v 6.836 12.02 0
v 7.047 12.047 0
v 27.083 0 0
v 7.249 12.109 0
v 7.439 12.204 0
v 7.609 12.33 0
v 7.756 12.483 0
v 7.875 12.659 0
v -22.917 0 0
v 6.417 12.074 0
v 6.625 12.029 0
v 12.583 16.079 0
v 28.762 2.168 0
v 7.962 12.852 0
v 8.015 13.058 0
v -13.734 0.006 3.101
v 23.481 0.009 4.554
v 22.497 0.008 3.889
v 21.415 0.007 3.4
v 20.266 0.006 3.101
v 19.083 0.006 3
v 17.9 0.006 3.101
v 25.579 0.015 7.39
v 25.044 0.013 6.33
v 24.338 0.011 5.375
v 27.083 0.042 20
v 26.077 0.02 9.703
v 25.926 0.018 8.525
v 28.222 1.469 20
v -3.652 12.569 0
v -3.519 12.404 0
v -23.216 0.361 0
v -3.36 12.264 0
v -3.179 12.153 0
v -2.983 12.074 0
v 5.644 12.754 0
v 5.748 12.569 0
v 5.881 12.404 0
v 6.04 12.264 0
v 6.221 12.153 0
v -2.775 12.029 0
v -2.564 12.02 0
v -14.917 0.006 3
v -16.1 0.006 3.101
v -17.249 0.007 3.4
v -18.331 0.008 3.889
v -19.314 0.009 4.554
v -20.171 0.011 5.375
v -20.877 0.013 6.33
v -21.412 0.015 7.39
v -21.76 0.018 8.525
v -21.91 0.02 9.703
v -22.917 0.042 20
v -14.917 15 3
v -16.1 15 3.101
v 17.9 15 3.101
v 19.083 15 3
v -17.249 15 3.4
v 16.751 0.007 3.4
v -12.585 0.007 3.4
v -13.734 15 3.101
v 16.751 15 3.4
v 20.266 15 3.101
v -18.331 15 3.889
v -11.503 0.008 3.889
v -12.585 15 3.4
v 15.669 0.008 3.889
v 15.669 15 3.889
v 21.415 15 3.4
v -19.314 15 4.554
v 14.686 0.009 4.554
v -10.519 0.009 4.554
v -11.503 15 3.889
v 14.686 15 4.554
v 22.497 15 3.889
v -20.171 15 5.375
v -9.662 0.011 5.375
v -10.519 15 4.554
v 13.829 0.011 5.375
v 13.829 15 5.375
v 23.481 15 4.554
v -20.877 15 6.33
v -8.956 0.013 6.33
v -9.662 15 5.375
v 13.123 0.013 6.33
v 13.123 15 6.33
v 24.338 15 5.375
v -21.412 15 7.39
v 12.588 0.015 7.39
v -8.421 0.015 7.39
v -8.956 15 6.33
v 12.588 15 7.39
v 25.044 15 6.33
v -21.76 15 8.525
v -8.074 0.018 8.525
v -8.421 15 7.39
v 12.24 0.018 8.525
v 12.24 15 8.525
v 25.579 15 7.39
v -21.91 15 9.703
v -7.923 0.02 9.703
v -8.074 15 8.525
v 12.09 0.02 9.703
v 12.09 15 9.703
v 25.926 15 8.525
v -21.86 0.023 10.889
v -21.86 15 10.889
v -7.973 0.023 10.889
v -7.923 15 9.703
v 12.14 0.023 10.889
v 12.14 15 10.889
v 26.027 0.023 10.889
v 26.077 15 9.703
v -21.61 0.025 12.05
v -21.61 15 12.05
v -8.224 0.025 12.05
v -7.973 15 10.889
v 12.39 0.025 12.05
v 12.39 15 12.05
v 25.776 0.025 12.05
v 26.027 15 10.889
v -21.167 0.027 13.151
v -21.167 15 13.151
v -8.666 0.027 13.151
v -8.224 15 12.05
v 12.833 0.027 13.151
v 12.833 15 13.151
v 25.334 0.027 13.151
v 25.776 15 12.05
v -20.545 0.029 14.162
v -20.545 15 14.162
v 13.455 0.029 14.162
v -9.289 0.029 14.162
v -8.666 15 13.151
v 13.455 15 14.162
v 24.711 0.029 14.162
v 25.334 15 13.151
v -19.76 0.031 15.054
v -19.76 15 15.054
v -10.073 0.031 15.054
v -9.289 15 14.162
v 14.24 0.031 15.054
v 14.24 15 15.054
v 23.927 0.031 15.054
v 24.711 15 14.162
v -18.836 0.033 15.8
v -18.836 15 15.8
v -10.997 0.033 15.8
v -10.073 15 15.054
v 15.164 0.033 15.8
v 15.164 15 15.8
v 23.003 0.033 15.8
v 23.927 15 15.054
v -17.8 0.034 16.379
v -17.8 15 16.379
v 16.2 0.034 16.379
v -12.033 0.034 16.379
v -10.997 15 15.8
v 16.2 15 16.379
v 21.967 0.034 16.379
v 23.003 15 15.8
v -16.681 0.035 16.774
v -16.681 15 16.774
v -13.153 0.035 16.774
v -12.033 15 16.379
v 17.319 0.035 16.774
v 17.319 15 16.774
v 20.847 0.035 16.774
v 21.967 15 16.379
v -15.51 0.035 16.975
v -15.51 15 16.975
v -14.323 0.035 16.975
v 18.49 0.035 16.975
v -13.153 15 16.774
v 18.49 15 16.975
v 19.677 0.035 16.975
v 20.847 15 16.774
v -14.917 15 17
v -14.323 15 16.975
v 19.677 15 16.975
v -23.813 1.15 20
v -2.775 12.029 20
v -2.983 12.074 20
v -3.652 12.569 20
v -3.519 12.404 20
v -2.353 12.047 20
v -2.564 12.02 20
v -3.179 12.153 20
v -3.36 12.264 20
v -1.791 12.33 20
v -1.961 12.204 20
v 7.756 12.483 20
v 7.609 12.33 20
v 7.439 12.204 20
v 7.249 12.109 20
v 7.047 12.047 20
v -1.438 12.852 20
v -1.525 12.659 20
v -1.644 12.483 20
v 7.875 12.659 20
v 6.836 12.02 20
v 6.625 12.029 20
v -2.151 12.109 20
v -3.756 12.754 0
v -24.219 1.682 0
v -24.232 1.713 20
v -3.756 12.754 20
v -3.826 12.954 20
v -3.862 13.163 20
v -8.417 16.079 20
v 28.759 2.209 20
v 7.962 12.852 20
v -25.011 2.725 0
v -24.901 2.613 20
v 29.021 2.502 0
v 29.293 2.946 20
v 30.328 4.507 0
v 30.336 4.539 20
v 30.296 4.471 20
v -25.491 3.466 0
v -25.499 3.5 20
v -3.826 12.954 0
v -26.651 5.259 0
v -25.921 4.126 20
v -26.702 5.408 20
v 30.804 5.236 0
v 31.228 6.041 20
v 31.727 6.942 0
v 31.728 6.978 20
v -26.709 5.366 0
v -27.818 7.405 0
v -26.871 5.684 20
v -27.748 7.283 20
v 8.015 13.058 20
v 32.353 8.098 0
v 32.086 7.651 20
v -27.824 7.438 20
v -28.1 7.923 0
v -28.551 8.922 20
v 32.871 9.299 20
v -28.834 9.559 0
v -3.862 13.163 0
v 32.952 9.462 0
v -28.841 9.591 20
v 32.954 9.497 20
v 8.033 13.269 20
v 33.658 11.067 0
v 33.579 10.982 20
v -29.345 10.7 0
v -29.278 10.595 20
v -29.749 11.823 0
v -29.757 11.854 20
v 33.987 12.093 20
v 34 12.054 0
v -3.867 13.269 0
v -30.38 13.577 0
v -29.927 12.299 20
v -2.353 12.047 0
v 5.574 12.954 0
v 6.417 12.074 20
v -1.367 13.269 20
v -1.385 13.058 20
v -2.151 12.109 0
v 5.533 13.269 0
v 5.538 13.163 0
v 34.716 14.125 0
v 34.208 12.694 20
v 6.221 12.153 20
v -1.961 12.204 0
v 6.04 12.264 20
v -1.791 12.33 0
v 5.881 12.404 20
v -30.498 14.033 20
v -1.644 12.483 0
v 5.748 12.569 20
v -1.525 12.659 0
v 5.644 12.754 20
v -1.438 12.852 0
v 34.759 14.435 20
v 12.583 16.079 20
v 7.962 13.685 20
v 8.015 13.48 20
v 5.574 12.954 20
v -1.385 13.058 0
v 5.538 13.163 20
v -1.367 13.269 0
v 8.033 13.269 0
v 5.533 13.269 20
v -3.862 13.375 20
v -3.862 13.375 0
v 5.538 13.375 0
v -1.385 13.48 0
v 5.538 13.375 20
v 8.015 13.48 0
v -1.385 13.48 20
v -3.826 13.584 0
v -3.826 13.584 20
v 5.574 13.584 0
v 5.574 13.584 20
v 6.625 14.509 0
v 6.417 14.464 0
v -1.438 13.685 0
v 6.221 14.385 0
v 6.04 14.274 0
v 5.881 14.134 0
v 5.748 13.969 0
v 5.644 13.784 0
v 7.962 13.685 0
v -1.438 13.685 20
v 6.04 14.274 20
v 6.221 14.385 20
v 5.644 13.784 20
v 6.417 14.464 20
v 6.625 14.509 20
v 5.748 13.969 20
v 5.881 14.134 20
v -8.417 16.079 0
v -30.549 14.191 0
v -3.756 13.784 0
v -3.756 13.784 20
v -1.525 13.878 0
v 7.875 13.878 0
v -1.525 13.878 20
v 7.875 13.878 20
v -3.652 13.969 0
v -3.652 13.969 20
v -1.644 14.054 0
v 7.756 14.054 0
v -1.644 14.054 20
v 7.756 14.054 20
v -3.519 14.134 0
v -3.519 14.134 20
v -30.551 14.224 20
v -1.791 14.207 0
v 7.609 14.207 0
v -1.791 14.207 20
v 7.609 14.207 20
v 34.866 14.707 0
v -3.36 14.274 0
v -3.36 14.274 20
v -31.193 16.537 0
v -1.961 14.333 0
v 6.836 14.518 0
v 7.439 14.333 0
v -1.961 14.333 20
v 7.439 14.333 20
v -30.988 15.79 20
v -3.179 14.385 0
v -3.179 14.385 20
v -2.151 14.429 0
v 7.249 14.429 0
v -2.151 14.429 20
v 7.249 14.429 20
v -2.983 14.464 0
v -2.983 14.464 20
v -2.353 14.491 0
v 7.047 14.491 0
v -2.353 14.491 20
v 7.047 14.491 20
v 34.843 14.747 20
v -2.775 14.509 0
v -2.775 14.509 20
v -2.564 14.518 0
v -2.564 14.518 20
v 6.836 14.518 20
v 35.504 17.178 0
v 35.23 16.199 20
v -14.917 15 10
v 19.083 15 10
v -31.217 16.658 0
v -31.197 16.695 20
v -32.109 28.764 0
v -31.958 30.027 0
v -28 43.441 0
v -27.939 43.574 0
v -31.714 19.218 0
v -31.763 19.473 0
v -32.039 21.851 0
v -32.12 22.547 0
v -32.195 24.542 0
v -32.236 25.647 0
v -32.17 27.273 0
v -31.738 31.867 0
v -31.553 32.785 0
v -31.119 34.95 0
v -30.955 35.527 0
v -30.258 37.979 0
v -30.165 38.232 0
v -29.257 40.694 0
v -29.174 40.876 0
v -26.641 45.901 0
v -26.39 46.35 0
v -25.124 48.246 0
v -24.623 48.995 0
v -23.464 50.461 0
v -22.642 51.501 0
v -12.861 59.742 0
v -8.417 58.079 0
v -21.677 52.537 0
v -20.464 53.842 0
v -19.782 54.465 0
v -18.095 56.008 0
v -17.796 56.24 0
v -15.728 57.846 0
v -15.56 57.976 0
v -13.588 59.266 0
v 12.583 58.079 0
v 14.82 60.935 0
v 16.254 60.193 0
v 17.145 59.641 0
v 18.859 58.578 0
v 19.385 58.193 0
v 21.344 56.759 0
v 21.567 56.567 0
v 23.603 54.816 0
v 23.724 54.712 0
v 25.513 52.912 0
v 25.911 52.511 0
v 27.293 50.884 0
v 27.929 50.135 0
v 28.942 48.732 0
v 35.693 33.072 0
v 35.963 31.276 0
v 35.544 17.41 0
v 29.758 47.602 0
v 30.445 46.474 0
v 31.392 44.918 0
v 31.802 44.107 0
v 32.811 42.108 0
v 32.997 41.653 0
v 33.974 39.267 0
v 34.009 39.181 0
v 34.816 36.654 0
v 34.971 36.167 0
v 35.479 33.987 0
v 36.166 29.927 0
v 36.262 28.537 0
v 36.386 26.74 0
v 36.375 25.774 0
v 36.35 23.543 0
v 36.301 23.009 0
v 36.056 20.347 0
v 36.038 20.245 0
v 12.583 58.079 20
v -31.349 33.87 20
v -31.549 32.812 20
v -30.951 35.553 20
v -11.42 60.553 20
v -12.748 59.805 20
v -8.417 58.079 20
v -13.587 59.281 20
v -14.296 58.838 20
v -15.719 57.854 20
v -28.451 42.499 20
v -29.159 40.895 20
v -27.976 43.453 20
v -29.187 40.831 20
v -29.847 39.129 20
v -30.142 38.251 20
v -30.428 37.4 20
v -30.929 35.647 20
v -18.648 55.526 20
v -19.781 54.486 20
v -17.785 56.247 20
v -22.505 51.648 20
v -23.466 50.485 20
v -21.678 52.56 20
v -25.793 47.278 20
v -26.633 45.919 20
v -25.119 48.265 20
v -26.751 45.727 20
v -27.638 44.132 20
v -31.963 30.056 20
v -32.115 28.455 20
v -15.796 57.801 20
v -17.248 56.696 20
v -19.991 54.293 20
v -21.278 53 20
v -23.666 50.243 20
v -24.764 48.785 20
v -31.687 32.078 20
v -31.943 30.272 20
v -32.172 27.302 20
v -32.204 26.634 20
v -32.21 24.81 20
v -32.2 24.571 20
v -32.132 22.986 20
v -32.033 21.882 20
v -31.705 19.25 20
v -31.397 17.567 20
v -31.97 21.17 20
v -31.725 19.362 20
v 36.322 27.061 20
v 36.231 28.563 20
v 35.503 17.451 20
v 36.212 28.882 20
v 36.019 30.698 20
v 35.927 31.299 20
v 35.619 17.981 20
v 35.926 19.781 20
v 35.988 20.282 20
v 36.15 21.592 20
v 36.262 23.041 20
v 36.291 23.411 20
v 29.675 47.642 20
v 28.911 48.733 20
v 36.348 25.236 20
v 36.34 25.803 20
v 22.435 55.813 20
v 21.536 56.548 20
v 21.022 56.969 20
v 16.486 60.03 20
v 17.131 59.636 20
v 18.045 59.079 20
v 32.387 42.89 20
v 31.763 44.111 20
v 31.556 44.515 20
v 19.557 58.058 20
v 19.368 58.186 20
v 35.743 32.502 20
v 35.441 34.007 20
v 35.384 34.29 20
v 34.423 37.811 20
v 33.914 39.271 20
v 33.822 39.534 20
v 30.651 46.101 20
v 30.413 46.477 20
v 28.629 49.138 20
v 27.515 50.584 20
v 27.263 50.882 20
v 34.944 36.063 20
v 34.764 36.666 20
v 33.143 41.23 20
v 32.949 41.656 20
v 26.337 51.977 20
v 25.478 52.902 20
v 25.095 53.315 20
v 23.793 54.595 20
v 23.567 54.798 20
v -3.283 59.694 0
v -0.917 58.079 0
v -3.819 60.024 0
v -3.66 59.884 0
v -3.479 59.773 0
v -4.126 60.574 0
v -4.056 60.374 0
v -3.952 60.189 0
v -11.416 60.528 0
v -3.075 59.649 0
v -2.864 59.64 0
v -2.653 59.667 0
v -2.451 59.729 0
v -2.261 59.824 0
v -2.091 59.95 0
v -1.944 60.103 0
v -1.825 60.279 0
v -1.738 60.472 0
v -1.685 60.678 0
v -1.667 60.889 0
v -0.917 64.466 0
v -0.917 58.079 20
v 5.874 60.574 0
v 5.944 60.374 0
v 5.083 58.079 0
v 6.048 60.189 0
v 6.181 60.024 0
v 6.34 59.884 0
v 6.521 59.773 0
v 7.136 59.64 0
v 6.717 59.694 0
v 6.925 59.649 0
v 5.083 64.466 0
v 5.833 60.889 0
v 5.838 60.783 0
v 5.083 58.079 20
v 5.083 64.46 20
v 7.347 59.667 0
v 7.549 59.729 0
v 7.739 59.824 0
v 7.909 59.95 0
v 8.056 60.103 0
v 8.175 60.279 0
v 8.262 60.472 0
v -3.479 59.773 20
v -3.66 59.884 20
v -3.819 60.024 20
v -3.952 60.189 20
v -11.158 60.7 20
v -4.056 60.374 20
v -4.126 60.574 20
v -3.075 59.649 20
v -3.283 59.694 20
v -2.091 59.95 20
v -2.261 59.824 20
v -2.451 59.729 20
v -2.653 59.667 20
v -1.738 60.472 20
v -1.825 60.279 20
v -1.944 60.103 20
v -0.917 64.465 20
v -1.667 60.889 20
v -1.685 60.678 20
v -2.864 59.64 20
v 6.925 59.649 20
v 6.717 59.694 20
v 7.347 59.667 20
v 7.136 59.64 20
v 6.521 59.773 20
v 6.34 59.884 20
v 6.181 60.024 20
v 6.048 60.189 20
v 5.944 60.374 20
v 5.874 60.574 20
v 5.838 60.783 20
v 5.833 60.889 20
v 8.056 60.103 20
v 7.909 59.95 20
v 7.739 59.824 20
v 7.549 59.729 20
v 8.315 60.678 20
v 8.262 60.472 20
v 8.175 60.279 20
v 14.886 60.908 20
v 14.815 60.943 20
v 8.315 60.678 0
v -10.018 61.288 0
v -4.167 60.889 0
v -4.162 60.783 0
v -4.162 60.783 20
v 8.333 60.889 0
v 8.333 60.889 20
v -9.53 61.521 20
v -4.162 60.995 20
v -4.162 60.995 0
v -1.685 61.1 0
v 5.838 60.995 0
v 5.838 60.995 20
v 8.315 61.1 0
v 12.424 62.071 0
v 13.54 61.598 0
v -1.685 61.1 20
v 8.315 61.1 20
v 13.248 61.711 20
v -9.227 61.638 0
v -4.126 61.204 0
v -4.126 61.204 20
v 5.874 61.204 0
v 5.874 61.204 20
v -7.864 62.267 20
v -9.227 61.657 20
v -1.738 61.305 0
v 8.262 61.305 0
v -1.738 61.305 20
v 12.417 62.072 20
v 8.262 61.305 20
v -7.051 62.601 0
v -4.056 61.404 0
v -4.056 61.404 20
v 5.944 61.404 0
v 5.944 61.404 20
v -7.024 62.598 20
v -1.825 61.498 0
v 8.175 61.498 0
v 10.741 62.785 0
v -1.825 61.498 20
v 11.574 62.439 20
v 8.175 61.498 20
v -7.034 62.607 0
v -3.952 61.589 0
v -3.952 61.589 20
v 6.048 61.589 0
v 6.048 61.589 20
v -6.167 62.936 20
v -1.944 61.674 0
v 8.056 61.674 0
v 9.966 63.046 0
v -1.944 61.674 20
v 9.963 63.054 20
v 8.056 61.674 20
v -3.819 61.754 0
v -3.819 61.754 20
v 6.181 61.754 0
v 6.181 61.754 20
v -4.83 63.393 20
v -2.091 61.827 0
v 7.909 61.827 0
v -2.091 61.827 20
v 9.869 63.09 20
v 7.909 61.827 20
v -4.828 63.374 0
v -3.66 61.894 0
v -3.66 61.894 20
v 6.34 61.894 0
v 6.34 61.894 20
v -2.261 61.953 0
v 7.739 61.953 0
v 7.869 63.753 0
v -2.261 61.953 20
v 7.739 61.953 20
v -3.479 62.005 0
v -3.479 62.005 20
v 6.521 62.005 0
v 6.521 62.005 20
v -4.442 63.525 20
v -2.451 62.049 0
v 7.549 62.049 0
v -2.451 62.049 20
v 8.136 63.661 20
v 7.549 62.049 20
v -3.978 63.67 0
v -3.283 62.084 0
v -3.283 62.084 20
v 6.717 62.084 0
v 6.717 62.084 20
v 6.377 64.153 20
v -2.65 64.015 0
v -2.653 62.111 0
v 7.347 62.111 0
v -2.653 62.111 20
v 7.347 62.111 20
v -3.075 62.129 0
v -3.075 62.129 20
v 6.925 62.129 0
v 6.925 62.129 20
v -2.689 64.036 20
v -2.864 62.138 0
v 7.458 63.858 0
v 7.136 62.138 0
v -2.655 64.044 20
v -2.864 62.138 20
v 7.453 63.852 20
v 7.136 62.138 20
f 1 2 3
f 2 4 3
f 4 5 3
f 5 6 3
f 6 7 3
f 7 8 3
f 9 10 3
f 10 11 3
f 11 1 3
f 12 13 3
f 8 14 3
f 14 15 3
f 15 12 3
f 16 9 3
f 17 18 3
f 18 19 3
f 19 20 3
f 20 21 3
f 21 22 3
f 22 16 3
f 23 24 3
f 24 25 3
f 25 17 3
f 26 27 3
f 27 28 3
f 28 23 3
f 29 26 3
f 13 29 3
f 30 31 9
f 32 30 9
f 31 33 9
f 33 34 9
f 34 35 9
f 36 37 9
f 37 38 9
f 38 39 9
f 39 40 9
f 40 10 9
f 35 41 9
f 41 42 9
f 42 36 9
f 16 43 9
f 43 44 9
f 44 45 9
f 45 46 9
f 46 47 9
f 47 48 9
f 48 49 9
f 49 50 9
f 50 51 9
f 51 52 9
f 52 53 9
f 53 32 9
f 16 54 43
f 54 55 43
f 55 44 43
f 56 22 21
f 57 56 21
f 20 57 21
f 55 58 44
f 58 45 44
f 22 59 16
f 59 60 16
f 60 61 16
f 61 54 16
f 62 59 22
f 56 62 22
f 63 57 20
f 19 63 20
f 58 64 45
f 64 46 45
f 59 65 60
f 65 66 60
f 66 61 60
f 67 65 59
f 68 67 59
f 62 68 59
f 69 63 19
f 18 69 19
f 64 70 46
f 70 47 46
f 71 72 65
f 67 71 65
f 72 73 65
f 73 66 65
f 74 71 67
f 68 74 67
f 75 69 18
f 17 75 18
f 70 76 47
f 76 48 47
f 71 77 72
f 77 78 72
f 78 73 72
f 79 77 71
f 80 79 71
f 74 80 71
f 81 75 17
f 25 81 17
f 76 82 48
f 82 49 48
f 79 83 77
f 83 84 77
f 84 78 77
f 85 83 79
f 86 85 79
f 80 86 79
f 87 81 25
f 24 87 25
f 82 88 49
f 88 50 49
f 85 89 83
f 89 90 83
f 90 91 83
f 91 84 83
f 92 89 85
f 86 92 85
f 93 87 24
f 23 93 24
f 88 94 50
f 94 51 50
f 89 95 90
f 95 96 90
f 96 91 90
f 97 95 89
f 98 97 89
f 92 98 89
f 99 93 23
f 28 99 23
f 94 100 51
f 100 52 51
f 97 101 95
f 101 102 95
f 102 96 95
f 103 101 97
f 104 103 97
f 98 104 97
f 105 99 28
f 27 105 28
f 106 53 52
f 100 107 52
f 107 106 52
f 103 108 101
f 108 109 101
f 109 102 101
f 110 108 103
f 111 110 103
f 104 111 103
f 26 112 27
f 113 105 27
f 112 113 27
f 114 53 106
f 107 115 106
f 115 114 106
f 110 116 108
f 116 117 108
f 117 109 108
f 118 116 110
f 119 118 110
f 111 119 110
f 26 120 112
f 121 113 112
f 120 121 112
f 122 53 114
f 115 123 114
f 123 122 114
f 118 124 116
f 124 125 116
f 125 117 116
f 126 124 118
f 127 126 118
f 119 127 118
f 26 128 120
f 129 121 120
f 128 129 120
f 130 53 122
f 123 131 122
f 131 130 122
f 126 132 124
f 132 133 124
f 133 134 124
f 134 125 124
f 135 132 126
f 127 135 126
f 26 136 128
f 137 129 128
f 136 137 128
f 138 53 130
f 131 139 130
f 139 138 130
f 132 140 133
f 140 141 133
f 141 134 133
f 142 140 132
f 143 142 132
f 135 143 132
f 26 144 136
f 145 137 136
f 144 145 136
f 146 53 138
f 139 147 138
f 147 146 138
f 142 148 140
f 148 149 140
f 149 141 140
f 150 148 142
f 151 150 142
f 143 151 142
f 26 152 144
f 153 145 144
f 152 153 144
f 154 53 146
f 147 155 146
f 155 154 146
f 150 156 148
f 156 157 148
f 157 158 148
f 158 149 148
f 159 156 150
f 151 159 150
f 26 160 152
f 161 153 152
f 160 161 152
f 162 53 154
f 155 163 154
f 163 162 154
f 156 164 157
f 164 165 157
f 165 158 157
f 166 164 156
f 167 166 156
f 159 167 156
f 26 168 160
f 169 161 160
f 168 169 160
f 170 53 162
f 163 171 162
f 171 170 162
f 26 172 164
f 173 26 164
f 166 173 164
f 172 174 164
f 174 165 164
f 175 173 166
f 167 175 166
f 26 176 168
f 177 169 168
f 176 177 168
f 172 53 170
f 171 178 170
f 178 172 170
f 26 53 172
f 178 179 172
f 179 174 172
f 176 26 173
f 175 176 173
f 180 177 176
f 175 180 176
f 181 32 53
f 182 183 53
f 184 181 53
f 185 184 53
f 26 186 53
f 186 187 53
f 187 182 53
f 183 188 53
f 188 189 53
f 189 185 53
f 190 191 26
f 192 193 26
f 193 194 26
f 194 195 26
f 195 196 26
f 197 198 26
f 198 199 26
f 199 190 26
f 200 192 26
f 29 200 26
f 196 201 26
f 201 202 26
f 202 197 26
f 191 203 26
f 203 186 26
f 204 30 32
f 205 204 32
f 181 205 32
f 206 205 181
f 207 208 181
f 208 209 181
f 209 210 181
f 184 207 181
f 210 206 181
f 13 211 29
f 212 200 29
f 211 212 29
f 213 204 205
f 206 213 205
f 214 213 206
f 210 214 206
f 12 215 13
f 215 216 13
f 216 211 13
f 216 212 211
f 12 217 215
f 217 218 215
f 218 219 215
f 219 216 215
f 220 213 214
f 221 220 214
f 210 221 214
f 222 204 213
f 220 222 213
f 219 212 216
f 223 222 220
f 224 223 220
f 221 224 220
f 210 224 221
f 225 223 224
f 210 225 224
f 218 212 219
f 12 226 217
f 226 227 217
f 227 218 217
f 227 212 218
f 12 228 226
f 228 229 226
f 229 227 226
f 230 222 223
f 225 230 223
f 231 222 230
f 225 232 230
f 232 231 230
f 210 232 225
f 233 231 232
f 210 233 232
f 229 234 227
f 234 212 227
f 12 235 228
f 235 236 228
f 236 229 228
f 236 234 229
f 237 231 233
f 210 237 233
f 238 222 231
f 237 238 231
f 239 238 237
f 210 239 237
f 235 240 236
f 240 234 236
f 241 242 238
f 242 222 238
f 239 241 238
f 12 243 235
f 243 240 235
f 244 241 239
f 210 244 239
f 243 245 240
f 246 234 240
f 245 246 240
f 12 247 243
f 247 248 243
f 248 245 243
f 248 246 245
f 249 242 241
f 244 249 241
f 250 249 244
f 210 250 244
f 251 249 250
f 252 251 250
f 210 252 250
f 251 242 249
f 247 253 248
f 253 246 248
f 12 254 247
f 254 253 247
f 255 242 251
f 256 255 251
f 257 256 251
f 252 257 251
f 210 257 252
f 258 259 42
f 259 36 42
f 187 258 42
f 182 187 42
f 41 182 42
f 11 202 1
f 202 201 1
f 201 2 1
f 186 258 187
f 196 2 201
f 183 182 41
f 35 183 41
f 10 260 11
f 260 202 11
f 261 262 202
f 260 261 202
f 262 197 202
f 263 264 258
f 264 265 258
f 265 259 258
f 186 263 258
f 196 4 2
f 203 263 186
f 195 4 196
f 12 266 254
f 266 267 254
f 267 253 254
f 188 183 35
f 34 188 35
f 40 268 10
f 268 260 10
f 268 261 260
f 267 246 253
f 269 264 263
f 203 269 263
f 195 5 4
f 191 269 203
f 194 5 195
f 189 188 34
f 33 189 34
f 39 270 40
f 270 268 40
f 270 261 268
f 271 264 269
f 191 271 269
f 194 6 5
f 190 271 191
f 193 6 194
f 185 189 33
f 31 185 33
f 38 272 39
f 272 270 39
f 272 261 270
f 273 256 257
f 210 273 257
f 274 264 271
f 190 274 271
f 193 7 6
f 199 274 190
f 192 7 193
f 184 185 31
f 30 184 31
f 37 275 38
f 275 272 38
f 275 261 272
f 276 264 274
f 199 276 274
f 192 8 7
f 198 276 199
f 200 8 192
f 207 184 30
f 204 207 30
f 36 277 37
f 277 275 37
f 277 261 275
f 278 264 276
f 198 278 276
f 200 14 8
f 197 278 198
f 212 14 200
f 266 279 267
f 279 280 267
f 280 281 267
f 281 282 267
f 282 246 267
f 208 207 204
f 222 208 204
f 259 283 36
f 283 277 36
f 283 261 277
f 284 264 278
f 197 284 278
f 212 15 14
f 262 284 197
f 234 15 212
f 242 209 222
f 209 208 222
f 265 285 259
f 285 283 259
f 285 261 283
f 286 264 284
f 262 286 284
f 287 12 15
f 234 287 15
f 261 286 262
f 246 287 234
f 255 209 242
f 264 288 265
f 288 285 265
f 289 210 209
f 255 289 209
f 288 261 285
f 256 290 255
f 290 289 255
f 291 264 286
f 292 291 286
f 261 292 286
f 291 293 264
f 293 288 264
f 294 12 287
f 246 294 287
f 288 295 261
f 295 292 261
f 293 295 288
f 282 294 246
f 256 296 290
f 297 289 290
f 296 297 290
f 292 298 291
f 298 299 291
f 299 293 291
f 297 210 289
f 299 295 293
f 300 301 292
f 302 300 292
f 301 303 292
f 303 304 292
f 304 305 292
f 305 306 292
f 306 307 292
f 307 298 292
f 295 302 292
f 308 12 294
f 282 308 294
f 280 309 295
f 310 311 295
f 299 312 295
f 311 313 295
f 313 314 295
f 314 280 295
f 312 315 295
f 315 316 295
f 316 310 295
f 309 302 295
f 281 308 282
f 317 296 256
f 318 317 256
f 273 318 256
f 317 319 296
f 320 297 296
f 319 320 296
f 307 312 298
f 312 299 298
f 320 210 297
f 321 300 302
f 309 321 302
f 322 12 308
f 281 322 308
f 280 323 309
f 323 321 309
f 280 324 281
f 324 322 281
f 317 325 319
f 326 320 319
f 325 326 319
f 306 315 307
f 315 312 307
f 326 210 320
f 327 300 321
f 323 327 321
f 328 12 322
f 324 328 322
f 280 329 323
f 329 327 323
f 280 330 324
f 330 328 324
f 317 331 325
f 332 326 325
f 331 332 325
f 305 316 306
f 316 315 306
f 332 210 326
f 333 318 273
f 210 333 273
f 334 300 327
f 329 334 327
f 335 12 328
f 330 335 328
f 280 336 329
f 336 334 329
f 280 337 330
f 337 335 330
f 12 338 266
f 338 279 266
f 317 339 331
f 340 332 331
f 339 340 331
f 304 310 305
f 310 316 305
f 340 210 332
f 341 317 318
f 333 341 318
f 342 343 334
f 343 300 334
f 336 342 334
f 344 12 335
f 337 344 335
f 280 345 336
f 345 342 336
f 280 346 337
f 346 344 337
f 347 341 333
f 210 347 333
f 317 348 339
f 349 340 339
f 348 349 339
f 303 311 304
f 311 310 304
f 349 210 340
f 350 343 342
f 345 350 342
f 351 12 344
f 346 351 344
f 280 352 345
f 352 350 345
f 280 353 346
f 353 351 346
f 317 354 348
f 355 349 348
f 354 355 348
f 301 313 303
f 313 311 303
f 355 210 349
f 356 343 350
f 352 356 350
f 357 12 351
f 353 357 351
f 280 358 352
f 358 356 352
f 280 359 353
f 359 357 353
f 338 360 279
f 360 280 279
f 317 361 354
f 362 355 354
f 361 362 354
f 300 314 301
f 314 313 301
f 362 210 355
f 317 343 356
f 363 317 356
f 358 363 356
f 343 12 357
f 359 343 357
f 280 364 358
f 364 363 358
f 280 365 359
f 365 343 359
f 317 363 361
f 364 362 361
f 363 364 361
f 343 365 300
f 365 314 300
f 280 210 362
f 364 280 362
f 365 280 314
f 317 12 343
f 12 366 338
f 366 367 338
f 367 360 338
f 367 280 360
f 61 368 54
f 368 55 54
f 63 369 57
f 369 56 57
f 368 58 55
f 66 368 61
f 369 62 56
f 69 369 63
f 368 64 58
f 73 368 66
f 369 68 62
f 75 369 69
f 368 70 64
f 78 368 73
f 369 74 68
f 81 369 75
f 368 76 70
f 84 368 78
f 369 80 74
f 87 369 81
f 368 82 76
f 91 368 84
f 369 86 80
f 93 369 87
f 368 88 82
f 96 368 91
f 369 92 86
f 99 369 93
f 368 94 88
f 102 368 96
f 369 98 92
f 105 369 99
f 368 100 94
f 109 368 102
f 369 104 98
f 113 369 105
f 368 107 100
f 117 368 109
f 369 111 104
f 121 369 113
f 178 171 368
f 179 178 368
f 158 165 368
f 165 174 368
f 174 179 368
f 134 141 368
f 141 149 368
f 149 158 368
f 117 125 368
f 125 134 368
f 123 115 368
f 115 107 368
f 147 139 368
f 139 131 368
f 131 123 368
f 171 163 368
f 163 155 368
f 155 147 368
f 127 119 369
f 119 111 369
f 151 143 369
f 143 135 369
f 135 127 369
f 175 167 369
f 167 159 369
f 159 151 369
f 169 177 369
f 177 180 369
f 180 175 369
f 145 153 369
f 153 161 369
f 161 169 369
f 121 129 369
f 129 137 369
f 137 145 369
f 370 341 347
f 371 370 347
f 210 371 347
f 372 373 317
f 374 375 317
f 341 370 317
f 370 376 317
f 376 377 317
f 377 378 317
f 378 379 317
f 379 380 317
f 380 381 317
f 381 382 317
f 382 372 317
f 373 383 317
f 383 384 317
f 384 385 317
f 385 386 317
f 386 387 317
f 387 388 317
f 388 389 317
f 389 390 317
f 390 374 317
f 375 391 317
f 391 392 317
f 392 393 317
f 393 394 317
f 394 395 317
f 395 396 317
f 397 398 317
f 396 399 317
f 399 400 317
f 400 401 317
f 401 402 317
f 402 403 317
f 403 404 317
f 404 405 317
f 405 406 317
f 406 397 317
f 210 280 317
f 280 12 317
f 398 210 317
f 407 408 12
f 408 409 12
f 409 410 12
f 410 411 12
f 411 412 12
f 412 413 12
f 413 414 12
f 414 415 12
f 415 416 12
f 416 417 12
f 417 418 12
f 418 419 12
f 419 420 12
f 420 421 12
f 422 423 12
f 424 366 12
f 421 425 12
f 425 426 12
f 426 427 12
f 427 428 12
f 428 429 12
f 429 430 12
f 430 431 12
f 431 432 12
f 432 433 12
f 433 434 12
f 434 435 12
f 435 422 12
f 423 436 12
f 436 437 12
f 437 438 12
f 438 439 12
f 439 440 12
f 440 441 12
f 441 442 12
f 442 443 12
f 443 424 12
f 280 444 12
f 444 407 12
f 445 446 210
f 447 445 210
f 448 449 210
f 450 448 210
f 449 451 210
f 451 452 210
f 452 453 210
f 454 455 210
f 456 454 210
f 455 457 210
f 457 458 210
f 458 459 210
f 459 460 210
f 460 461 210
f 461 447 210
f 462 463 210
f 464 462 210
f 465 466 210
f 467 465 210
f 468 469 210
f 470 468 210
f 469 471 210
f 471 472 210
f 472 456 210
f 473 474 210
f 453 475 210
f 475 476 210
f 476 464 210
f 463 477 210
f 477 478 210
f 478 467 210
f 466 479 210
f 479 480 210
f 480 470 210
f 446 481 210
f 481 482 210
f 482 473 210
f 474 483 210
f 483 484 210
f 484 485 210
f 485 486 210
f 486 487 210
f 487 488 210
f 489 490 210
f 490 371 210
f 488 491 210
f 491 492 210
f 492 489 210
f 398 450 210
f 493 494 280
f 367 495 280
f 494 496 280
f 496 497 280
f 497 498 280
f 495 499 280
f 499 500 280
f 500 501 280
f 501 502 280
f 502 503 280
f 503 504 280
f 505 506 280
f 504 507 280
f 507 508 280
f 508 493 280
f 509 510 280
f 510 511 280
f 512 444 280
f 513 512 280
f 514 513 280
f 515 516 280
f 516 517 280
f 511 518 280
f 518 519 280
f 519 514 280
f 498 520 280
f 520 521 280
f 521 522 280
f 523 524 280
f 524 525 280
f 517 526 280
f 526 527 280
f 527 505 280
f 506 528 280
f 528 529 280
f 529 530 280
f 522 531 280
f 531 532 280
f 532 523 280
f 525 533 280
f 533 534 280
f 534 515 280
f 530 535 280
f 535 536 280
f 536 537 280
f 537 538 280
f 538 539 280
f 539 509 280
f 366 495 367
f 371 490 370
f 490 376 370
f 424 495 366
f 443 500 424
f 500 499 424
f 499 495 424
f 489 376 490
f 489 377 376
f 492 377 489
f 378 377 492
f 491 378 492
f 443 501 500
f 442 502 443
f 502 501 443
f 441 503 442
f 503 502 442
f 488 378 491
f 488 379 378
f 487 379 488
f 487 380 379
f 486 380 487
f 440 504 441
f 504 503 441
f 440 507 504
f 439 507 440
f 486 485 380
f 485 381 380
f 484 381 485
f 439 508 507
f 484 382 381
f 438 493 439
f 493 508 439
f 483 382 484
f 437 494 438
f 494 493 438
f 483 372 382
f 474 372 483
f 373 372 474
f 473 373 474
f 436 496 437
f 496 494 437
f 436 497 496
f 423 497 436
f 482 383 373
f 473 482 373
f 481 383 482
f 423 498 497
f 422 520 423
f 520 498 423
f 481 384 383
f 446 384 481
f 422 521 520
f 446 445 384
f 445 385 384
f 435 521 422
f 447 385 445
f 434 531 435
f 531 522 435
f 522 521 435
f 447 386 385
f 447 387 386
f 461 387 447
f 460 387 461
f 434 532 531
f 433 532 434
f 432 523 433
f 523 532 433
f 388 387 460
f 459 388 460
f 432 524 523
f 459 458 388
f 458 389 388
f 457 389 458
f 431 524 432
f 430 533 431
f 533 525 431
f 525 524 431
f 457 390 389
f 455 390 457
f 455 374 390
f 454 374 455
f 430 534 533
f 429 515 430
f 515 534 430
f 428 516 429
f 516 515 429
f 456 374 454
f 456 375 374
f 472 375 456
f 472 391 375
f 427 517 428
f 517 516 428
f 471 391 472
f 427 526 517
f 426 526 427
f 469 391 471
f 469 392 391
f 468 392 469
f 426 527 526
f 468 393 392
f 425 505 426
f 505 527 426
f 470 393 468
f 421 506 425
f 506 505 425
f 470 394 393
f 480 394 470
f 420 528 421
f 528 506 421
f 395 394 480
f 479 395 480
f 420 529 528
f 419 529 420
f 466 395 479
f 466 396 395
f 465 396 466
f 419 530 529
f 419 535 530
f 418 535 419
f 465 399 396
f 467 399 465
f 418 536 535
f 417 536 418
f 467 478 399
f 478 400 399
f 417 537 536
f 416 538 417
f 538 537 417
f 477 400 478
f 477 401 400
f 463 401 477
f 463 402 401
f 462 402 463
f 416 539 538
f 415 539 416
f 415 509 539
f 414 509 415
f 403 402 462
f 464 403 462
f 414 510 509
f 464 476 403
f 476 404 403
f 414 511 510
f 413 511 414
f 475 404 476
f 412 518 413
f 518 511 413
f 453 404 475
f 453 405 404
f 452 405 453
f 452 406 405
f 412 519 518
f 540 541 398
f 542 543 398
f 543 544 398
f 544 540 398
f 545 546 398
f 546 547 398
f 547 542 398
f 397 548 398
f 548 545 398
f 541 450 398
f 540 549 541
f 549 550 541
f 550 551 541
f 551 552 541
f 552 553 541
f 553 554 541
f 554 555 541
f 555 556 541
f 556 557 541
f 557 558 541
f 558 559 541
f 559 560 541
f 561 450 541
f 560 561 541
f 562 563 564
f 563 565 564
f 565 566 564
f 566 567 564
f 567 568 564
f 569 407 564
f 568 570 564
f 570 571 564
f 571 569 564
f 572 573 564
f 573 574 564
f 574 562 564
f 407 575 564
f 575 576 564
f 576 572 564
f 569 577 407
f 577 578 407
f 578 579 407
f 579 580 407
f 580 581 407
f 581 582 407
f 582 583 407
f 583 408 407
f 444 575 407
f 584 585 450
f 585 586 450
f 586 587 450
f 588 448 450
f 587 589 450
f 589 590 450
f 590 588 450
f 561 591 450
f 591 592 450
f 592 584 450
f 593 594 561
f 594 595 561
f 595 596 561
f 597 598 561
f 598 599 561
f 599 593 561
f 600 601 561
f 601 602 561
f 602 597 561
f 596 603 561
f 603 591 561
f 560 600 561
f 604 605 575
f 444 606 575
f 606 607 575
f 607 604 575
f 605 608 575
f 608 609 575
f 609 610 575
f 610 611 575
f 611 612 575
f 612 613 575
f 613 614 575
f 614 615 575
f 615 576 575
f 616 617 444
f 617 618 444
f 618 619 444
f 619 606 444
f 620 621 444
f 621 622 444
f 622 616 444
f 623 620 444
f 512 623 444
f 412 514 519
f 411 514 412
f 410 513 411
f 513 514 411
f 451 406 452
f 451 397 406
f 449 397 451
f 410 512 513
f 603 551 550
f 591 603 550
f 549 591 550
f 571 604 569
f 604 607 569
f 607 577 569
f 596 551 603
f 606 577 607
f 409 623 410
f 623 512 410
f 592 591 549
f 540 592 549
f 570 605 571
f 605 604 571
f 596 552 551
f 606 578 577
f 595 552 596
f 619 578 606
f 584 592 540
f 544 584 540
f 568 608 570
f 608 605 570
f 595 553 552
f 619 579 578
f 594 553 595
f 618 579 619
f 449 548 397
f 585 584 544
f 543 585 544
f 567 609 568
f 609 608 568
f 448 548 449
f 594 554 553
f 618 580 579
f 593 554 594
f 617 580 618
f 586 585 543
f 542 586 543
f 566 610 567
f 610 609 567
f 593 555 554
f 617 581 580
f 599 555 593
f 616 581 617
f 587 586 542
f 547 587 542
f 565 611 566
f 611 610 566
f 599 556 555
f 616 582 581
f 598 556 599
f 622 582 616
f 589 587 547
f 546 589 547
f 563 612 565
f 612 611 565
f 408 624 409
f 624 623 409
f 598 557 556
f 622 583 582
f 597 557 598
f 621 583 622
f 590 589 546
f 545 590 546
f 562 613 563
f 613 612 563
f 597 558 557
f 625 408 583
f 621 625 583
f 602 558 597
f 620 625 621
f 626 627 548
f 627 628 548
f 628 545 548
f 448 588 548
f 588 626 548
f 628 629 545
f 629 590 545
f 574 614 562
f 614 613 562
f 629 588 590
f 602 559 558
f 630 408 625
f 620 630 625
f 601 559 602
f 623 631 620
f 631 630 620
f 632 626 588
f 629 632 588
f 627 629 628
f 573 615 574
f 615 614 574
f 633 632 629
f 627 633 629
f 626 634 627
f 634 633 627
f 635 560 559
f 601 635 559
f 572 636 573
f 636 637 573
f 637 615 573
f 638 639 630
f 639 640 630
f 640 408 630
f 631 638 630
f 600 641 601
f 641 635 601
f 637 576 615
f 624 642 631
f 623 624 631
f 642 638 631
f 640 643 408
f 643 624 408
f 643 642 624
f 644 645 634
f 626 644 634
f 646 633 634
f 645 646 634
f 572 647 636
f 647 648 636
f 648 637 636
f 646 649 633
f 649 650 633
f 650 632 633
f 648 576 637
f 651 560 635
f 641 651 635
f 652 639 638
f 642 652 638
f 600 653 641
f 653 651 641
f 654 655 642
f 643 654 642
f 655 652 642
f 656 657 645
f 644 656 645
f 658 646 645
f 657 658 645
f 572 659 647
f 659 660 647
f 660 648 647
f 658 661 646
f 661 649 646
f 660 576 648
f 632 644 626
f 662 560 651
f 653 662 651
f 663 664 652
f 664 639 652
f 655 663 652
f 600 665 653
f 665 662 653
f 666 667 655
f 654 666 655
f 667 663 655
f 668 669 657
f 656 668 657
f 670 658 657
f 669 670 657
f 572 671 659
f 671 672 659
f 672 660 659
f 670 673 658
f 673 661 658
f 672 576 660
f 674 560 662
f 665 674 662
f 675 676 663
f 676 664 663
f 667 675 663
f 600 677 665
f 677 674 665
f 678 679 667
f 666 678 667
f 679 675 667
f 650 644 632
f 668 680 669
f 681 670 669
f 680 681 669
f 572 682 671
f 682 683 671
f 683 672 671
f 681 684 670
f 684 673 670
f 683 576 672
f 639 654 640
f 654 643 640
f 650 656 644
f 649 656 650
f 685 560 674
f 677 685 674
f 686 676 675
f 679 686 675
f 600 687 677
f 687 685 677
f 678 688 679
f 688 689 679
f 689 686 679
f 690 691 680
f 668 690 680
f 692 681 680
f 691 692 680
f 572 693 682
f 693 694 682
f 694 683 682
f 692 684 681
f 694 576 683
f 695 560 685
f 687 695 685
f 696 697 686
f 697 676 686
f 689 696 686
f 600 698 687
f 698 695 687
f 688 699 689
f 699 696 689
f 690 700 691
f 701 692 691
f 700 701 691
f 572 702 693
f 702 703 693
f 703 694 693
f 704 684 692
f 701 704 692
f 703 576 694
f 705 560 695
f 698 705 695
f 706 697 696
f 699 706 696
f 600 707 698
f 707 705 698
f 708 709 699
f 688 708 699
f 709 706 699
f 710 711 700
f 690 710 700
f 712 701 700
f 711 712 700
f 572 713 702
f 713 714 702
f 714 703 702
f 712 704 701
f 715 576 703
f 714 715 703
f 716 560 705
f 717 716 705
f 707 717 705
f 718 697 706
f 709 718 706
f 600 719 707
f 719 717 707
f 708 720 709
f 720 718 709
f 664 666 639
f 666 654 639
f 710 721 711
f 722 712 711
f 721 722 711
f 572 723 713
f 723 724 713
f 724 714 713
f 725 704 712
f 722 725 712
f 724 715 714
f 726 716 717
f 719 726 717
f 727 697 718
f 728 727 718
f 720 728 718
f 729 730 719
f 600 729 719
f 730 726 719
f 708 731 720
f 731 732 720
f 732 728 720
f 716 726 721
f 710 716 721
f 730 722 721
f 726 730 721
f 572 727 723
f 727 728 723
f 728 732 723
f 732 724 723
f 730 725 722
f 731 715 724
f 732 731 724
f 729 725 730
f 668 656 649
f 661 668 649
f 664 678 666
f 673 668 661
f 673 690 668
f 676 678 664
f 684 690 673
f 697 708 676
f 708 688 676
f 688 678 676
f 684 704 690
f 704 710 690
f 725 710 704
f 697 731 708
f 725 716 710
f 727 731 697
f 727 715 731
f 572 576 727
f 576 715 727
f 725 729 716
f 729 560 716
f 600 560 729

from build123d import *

# Parameters (mm, degrees)
SKETCH5_R          = 1.25
CUT_EXTRUDE1_DEPTH = 22
SKETCH6_R          = 7
CUT_EXTRUDE2_DEPTH = 15


with BuildPart() as part:
    # Surface-Knit1: read off the stored shape, not the designer's step
    # Surface-Knit1: loft between two sections, ruled curve by curve
    surface_knit1_from = [
        Edge.make_bspline([(2.083333333, 65, 0), (0.646232747, 64.800559216, 0), (-0.826702854, 64.515993467, 0), (-3.818616425, 63.749425521, 0), (-5.337603105, 63.267310443, 0), (-8.386455572, 62.082263598, 0), (-9.916283922, 61.37920281, 0), (-12.942411074, 59.736543691, 0), (-14.438613707, 58.796821883, 0), (-17.345798661, 56.676662259, 0), (-18.756625413, 55.496137115, 0), (-21.437875212, 52.905022069, 0), (-22.708100878, 51.494412766, 0), (-25.054855252, 48.47033026, 0), (-26.131181002, 46.856926203, 0), (-28.044894258, 43.470320821, 0), (-28.882119317, 41.697275034, 0), (-30.286104482, 38.046913607, 0), (-30.852782543, 36.169811281, 0), (-31.701669093, 32.373657167, 0), (-31.983893935, 30.454829684, 0), (-32.268420202, 26.637582521, 0), (-32.270825943, 24.73935017, 0), (-32.016934112, 21.019334498, 0), (-31.760796053, 19.197669041, 0), (-31.023611092, 15.67582868, 0), (-30.542738185, 13.975693203, 0), (-29.397291667, 10.728582673, 0), (-28.732872183, 9.18158041, 0), (-27.26390999, 6.258912542, 0), (-26.459481527, 4.883176255, 0), (-24.752359253, 2.309286831, 0), (-23.849734618, 1.111044068, 0), (-22.916666667, 0, 0)], [0, 0, 0, 0, 0.0625, 0.0625, 0.125, 0.125, 0.1875, 0.1875, 0.25, 0.25, 0.3125, 0.3125, 0.375, 0.375, 0.4375, 0.4375, 0.5, 0.5, 0.5625, 0.5625, 0.625, 0.625, 0.6875, 0.6875, 0.75, 0.75, 0.8125, 0.8125, 0.875, 0.875, 0.9375, 0.9375, 1, 1, 1, 1], 3),
        Edge.make_bspline([(27.083333333, 0, 0), (28.016401284, 1.111044068, 0), (28.91902592, 2.309286831, 0), (30.626148194, 4.883176255, 0), (31.430576657, 6.258912542, 0), (32.89953885, 9.18158041, 0), (33.563958334, 10.728582673, 0), (34.709404851, 13.975693203, 0), (35.190277759, 15.67582868, 0), (35.92746272, 19.197669041, 0), (36.183600779, 21.019334498, 0), (36.437492609, 24.73935017, 0), (36.435086869, 26.637582521, 0), (36.150560602, 30.454829684, 0), (35.868335759, 32.373657167, 0), (35.019449209, 36.169811281, 0), (34.452771148, 38.046913607, 0), (33.048785984, 41.697275034, 0), (32.211560925, 43.470320821, 0), (30.297847668, 46.856926203, 0), (29.221521919, 48.47033026, 0), (26.874767544, 51.494412766, 0), (25.604541879, 52.905022069, 0), (22.92329208, 55.496137115, 0), (21.512465328, 56.676662259, 0), (18.605280373, 58.796821883, 0), (17.10907774, 59.736543691, 0), (14.082950589, 61.37920281, 0), (12.553122239, 62.082263598, 0), (9.504269772, 63.267310443, 0), (7.985283092, 63.749425521, 0), (4.993369521, 64.515993467, 0), (3.52043392, 64.800559216, 0), (2.083333333, 65, 0)], [0, 0, 0, 0, 0.0625, 0.0625, 0.125, 0.125, 0.1875, 0.1875, 0.25, 0.25, 0.3125, 0.3125, 0.375, 0.375, 0.4375, 0.4375, 0.5, 0.5, 0.5625, 0.5625, 0.625, 0.625, 0.6875, 0.6875, 0.75, 0.75, 0.8125, 0.8125, 0.875, 0.875, 0.9375, 0.9375, 1, 1, 1, 1], 3),
        Edge.make_line((27.083333333, 0, 0), (-22.916666667, 0, 0)),
    ]
    surface_knit1_to = [
        Edge.make_bspline([(2.083333333, 65, 20), (0.647068043, 64.800424513, 20), (-0.824969306, 64.515786234, 20), (-3.814978177, 63.749245223, 20), (-5.332958295, 63.267229827, 20), (-8.379725343, 62.08260226, 20), (-9.908474817, 61.379861368, 20), (-12.932428528, 59.73810206, 20), (-14.427536732, 58.798960501, 20), (-17.332592911, 56.680243894, 20), (-18.742385636, 55.500581799, 20), (-21.421715644, 52.911470639, 20), (-22.691056015, 51.502002286, 20), (-25.036276618, 48.480441163, 20), (-26.111954405, 46.8684174, 20), (-28.024682221, 43.48474031, 20), (-28.861570209, 41.713242126, 20), (-30.265236079, 38.066046457, 20), (-30.831932078, 36.190561729, 20), (-31.681215411, 32.397605605, 20), (-31.963818965, 30.480357956, 20), (-32.24943077, 26.666132321, 20), (-32.252542967, 24.76934126, 20), (-32.000328363, 21.051990902, 20), (-31.745160599, 19.231549308, 20), (-31.010098955, 15.711890824, 20), (-30.530378628, 14.01271343, 20), (-29.387334902, 10.767236468, 20), (-28.724165314, 9.220909913, 20), (-27.257723578, 6.29932121, 20), (-26.454565517, 4.923988664, 20), (-24.749943011, 2.350663913, 20), (-23.848547718, 1.152582349, 20), (-22.916666667, 0.041598071, 20)], [0, 0, 0, 0, 0.0625, 0.0625, 0.125, 0.125, 0.1875, 0.1875, 0.25, 0.25, 0.3125, 0.3125, 0.375, 0.375, 0.4375, 0.4375, 0.5, 0.5, 0.5625, 0.5625, 0.625, 0.625, 0.6875, 0.6875, 0.75, 0.75, 0.8125, 0.8125, 0.875, 0.875, 0.9375, 0.9375, 1, 1, 1, 1], 3),
        Edge.make_bspline([(27.083333333, 0.041598071, 20), (28.013324474, 1.15416485, 20), (28.912650953, 2.353624766, 20), (30.612882601, 4.929167074, 20), (31.413718634, 6.305337934, 20), (32.875425295, 9.227959299, 20), (33.536182318, 10.774479235, 20), (34.674523423, 14.019650076, 20), (35.151954723, 15.718327197, 20), (35.882803171, 19.236326493, 20), (36.136048243, 21.05560894, 20), (36.385015288, 24.770116129, 20), (36.380579809, 26.665223747, 20), (36.093095417, 30.475786604, 20), (35.809943747, 32.391056326, 20), (34.960413899, 36.18005484, 20), (34.394019828, 38.053561803, 20), (32.991758511, 41.697107973, 20), (32.155972434, 43.466936274, 20), (30.246080794, 46.847842163, 20), (29.172135744, 48.458765813, 20), (26.830760169, 51.478864648, 20), (25.563530264, 52.887971076, 20), (22.888516003, 55.477149894, 20), (21.480926996, 56.657240939, 20), (18.58010928, 58.777551077, 20), (17.087034883, 59.717856056, 20), (14.066775655, 61.362540967, 20), (12.539686611, 62.06704278, 20), (9.495740577, 63.255611058, 20), (7.978921334, 63.739805204, 20), (4.990683697, 64.510935324, 20), (3.51925729, 64.797983291, 20), (2.083333333, 65, 20)], [0, 0, 0, 0, 0.0625, 0.0625, 0.125, 0.125, 0.1875, 0.1875, 0.25, 0.25, 0.3125, 0.3125, 0.375, 0.375, 0.4375, 0.4375, 0.5, 0.5, 0.5625, 0.5625, 0.625, 0.625, 0.6875, 0.6875, 0.75, 0.75, 0.8125, 0.8125, 0.875, 0.875, 0.9375, 0.9375, 1, 1, 1, 1], 3),
        Edge.make_line((27.083333333, 0.041598071, 20), (-22.916666667, 0.041598071, 20)),
    ]
    surface_knit1 = Solid(Shell([*[Face.make_surface_from_curves(surface_knit1_from[k], surface_knit1_to[k]) for k in range(3)], Face(Wire(surface_knit1_from)), Face(Wire(surface_knit1_to))]))
    add(surface_knit1)

    # Sketch5 → Cut-Extrude1 (cut)
    with BuildSketch(Plane.XY.offset(20)):
        with Locations((-2.616666667, 13.268765789)):
            Circle(SKETCH5_R)
        with Locations((-2.916666667, 60.888765789)):
            Circle(SKETCH5_R)
        with Locations(Location((6.783333333, 13.268765789, 0), (0, 0, 180))):
            Circle(SKETCH5_R)
        with Locations(Location((7.083333333, 60.888765789, 0), (0, 0, 180))):
            Circle(SKETCH5_R)
        Polygon((12.583333333, 16.078765789), (-8.416666667, 16.078765789), (-8.416666667, 58.078765789), (-0.916666667, 58.078765789), (-0.916666667, 65.078765789), (5.083333333, 65.078765789), (5.083333333, 58.078765789), (12.583333333, 58.078765789), align=None)
    extrude(amount=-CUT_EXTRUDE1_DEPTH, mode=Mode.SUBTRACT)

    # Sketch6 → Cut-Extrude2 (cut)
    with BuildSketch(Plane(origin=(0, 0, 0), x_dir=(1, 0, 0), z_dir=(0, 1, 0))):
        with Locations(Location((-14.916666667, -10, 0), (0, 0, 90))):
            Circle(SKETCH6_R)
        with Locations(Location((19.083333333, -10, 0), (0, 0, 90))):
            Circle(SKETCH6_R)
    extrude(amount=CUT_EXTRUDE2_DEPTH, mode=Mode.SUBTRACT)


solid = part.part
